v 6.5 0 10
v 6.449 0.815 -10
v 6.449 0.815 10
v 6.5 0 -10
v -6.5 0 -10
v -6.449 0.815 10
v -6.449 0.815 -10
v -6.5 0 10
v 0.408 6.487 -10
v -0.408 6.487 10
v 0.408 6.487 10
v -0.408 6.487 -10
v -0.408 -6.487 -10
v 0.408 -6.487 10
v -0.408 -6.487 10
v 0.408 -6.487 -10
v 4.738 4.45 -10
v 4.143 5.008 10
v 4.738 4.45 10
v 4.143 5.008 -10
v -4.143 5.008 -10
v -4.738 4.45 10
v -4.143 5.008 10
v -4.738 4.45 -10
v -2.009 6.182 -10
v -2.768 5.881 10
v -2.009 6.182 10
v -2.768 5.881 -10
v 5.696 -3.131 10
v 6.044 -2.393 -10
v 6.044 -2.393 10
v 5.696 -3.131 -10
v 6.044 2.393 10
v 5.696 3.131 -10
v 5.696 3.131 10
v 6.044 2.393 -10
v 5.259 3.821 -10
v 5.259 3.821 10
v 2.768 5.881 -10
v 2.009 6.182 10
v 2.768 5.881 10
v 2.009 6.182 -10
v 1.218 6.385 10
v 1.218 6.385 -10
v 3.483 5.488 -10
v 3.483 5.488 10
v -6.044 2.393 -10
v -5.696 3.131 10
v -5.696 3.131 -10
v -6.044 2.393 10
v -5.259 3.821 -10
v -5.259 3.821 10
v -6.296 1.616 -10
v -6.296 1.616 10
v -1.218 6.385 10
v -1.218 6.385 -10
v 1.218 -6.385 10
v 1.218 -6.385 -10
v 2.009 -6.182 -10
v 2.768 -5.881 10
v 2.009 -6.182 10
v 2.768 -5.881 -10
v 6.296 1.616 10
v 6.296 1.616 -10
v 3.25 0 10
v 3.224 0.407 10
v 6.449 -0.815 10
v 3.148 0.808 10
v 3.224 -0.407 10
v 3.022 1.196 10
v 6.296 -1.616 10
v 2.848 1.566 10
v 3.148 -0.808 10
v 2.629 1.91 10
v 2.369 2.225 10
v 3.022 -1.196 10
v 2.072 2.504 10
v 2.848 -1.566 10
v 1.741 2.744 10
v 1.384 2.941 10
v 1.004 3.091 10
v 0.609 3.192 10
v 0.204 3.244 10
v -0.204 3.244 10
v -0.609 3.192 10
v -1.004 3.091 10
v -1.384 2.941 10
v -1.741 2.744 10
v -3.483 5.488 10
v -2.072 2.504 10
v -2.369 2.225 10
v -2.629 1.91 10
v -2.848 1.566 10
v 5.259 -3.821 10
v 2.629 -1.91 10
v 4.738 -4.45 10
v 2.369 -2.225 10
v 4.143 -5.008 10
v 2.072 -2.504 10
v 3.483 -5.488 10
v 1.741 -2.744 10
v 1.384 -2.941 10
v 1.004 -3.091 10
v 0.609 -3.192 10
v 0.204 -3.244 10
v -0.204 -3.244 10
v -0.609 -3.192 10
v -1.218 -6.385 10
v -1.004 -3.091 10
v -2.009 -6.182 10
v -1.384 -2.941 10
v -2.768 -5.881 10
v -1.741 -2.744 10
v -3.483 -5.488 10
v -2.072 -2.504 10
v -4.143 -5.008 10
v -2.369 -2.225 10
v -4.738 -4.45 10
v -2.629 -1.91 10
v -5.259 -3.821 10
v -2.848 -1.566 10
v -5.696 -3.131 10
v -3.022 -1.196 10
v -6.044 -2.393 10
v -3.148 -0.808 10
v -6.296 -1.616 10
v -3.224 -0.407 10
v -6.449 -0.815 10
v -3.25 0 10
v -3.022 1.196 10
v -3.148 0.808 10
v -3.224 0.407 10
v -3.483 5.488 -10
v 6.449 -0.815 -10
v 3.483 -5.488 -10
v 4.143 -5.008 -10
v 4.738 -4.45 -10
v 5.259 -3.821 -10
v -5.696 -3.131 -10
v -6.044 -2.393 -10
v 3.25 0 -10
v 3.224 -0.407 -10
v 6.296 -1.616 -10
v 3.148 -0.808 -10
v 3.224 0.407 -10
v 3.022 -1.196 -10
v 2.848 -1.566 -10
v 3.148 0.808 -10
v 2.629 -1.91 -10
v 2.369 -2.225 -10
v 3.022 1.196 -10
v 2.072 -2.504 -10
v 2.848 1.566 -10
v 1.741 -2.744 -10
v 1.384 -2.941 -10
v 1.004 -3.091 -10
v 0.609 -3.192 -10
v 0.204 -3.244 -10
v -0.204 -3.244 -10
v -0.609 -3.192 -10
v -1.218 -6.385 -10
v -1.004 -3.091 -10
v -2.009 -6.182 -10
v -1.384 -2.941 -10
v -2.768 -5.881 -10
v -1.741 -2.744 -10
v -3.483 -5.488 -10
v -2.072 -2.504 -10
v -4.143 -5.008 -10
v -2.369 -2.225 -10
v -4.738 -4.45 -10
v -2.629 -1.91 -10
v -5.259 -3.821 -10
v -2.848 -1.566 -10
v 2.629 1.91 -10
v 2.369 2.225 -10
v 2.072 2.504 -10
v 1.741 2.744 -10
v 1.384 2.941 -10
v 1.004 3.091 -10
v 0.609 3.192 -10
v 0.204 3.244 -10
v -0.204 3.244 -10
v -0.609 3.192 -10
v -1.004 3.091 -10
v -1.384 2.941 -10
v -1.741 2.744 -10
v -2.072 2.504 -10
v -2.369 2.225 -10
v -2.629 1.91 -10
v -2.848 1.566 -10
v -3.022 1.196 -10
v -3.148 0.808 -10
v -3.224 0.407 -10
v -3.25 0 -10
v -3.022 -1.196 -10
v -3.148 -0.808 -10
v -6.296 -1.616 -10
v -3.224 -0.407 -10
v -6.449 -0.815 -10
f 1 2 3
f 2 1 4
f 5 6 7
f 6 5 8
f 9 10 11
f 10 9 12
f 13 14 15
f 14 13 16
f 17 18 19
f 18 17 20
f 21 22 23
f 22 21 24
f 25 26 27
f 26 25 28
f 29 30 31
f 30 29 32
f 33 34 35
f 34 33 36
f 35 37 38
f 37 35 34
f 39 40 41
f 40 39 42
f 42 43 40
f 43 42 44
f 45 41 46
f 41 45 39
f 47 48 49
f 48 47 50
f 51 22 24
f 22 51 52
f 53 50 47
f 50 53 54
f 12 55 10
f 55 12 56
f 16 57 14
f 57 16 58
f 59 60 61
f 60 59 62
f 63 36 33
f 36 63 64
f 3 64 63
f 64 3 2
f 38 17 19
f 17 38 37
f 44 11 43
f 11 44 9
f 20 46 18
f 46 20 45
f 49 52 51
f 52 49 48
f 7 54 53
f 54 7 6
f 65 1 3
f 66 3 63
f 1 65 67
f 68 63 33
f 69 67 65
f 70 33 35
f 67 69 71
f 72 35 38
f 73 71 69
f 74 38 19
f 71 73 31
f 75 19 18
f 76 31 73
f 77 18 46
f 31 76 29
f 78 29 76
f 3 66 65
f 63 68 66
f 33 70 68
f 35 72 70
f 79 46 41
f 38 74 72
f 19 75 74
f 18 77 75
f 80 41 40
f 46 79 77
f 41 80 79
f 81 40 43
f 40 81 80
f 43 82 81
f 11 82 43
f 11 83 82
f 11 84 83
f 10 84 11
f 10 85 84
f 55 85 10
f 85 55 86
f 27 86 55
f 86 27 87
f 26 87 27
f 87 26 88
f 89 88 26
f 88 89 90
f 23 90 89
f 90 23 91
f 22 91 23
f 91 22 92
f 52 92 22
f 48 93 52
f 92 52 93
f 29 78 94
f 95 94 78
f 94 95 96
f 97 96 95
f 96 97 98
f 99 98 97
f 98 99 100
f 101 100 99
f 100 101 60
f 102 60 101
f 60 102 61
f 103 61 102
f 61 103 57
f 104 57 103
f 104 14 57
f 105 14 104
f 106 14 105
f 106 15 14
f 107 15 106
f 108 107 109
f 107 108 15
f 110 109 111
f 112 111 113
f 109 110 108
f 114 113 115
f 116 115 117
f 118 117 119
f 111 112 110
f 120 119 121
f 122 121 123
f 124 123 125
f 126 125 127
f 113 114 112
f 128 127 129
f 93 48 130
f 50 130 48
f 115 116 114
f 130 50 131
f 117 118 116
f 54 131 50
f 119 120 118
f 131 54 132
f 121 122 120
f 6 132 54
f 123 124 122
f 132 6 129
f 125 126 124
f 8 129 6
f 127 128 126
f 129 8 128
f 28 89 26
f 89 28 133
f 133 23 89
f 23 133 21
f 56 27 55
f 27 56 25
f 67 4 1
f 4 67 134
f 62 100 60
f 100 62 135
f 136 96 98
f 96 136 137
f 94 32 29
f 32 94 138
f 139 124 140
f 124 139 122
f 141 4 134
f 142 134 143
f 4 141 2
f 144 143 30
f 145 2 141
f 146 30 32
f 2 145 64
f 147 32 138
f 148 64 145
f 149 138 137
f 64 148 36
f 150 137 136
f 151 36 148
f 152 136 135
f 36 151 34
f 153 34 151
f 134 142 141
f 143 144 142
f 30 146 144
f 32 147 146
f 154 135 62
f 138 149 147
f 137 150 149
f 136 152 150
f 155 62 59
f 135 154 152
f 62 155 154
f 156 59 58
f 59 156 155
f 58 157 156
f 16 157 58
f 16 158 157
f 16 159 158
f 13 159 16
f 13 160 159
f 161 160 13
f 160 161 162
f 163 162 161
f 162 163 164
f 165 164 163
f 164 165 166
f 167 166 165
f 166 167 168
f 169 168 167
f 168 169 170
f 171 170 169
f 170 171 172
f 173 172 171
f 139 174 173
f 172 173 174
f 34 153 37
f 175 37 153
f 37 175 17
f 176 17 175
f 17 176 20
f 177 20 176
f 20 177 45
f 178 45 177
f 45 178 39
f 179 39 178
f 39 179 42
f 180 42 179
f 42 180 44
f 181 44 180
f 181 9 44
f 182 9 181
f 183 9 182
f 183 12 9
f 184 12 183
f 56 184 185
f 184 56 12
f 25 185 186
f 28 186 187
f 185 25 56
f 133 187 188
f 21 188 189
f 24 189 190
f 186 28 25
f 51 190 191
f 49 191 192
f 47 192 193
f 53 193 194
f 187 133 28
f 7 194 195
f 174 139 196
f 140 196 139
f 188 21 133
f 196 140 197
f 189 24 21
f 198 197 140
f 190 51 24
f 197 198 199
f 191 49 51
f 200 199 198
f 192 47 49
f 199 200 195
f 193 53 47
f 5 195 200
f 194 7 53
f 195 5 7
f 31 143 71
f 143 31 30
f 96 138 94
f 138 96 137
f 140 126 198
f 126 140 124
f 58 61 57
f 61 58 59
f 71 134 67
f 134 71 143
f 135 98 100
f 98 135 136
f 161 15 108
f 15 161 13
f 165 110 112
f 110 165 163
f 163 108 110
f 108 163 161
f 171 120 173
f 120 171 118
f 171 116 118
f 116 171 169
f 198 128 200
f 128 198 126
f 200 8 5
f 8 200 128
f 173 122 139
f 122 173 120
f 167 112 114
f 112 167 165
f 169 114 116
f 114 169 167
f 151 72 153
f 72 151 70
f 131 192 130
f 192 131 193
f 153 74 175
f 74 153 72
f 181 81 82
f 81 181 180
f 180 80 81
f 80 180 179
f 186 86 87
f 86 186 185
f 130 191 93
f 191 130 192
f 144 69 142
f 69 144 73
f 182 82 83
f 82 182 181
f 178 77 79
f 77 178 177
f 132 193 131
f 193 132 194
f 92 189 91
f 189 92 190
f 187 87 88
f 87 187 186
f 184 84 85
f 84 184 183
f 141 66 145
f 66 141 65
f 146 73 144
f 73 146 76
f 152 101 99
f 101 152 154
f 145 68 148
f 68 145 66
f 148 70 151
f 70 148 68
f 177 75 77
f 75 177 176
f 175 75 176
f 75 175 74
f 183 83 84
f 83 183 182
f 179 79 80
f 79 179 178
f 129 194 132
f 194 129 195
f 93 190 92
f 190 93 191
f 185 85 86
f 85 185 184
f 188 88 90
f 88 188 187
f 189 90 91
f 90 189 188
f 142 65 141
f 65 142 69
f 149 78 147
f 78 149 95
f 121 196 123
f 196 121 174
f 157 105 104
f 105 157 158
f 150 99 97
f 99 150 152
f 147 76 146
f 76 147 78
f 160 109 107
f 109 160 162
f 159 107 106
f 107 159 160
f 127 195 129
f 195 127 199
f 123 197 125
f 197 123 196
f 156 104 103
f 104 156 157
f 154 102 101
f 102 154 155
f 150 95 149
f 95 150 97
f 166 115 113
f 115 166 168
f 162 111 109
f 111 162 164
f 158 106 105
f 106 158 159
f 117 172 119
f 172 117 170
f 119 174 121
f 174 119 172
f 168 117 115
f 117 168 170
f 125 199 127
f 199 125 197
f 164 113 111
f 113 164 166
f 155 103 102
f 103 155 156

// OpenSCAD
$fn = 50;


difference() {
	union() {
		translate(v = [0, 0, -10.0000000000]) {
			cylinder(h = 20, r = 6.5000000000);
		}
	}
	union() {
		translate(v = [0, 0, -100.0000000000]) {
			cylinder(h = 200, r = 3.2500000000);
		}
	}
}
